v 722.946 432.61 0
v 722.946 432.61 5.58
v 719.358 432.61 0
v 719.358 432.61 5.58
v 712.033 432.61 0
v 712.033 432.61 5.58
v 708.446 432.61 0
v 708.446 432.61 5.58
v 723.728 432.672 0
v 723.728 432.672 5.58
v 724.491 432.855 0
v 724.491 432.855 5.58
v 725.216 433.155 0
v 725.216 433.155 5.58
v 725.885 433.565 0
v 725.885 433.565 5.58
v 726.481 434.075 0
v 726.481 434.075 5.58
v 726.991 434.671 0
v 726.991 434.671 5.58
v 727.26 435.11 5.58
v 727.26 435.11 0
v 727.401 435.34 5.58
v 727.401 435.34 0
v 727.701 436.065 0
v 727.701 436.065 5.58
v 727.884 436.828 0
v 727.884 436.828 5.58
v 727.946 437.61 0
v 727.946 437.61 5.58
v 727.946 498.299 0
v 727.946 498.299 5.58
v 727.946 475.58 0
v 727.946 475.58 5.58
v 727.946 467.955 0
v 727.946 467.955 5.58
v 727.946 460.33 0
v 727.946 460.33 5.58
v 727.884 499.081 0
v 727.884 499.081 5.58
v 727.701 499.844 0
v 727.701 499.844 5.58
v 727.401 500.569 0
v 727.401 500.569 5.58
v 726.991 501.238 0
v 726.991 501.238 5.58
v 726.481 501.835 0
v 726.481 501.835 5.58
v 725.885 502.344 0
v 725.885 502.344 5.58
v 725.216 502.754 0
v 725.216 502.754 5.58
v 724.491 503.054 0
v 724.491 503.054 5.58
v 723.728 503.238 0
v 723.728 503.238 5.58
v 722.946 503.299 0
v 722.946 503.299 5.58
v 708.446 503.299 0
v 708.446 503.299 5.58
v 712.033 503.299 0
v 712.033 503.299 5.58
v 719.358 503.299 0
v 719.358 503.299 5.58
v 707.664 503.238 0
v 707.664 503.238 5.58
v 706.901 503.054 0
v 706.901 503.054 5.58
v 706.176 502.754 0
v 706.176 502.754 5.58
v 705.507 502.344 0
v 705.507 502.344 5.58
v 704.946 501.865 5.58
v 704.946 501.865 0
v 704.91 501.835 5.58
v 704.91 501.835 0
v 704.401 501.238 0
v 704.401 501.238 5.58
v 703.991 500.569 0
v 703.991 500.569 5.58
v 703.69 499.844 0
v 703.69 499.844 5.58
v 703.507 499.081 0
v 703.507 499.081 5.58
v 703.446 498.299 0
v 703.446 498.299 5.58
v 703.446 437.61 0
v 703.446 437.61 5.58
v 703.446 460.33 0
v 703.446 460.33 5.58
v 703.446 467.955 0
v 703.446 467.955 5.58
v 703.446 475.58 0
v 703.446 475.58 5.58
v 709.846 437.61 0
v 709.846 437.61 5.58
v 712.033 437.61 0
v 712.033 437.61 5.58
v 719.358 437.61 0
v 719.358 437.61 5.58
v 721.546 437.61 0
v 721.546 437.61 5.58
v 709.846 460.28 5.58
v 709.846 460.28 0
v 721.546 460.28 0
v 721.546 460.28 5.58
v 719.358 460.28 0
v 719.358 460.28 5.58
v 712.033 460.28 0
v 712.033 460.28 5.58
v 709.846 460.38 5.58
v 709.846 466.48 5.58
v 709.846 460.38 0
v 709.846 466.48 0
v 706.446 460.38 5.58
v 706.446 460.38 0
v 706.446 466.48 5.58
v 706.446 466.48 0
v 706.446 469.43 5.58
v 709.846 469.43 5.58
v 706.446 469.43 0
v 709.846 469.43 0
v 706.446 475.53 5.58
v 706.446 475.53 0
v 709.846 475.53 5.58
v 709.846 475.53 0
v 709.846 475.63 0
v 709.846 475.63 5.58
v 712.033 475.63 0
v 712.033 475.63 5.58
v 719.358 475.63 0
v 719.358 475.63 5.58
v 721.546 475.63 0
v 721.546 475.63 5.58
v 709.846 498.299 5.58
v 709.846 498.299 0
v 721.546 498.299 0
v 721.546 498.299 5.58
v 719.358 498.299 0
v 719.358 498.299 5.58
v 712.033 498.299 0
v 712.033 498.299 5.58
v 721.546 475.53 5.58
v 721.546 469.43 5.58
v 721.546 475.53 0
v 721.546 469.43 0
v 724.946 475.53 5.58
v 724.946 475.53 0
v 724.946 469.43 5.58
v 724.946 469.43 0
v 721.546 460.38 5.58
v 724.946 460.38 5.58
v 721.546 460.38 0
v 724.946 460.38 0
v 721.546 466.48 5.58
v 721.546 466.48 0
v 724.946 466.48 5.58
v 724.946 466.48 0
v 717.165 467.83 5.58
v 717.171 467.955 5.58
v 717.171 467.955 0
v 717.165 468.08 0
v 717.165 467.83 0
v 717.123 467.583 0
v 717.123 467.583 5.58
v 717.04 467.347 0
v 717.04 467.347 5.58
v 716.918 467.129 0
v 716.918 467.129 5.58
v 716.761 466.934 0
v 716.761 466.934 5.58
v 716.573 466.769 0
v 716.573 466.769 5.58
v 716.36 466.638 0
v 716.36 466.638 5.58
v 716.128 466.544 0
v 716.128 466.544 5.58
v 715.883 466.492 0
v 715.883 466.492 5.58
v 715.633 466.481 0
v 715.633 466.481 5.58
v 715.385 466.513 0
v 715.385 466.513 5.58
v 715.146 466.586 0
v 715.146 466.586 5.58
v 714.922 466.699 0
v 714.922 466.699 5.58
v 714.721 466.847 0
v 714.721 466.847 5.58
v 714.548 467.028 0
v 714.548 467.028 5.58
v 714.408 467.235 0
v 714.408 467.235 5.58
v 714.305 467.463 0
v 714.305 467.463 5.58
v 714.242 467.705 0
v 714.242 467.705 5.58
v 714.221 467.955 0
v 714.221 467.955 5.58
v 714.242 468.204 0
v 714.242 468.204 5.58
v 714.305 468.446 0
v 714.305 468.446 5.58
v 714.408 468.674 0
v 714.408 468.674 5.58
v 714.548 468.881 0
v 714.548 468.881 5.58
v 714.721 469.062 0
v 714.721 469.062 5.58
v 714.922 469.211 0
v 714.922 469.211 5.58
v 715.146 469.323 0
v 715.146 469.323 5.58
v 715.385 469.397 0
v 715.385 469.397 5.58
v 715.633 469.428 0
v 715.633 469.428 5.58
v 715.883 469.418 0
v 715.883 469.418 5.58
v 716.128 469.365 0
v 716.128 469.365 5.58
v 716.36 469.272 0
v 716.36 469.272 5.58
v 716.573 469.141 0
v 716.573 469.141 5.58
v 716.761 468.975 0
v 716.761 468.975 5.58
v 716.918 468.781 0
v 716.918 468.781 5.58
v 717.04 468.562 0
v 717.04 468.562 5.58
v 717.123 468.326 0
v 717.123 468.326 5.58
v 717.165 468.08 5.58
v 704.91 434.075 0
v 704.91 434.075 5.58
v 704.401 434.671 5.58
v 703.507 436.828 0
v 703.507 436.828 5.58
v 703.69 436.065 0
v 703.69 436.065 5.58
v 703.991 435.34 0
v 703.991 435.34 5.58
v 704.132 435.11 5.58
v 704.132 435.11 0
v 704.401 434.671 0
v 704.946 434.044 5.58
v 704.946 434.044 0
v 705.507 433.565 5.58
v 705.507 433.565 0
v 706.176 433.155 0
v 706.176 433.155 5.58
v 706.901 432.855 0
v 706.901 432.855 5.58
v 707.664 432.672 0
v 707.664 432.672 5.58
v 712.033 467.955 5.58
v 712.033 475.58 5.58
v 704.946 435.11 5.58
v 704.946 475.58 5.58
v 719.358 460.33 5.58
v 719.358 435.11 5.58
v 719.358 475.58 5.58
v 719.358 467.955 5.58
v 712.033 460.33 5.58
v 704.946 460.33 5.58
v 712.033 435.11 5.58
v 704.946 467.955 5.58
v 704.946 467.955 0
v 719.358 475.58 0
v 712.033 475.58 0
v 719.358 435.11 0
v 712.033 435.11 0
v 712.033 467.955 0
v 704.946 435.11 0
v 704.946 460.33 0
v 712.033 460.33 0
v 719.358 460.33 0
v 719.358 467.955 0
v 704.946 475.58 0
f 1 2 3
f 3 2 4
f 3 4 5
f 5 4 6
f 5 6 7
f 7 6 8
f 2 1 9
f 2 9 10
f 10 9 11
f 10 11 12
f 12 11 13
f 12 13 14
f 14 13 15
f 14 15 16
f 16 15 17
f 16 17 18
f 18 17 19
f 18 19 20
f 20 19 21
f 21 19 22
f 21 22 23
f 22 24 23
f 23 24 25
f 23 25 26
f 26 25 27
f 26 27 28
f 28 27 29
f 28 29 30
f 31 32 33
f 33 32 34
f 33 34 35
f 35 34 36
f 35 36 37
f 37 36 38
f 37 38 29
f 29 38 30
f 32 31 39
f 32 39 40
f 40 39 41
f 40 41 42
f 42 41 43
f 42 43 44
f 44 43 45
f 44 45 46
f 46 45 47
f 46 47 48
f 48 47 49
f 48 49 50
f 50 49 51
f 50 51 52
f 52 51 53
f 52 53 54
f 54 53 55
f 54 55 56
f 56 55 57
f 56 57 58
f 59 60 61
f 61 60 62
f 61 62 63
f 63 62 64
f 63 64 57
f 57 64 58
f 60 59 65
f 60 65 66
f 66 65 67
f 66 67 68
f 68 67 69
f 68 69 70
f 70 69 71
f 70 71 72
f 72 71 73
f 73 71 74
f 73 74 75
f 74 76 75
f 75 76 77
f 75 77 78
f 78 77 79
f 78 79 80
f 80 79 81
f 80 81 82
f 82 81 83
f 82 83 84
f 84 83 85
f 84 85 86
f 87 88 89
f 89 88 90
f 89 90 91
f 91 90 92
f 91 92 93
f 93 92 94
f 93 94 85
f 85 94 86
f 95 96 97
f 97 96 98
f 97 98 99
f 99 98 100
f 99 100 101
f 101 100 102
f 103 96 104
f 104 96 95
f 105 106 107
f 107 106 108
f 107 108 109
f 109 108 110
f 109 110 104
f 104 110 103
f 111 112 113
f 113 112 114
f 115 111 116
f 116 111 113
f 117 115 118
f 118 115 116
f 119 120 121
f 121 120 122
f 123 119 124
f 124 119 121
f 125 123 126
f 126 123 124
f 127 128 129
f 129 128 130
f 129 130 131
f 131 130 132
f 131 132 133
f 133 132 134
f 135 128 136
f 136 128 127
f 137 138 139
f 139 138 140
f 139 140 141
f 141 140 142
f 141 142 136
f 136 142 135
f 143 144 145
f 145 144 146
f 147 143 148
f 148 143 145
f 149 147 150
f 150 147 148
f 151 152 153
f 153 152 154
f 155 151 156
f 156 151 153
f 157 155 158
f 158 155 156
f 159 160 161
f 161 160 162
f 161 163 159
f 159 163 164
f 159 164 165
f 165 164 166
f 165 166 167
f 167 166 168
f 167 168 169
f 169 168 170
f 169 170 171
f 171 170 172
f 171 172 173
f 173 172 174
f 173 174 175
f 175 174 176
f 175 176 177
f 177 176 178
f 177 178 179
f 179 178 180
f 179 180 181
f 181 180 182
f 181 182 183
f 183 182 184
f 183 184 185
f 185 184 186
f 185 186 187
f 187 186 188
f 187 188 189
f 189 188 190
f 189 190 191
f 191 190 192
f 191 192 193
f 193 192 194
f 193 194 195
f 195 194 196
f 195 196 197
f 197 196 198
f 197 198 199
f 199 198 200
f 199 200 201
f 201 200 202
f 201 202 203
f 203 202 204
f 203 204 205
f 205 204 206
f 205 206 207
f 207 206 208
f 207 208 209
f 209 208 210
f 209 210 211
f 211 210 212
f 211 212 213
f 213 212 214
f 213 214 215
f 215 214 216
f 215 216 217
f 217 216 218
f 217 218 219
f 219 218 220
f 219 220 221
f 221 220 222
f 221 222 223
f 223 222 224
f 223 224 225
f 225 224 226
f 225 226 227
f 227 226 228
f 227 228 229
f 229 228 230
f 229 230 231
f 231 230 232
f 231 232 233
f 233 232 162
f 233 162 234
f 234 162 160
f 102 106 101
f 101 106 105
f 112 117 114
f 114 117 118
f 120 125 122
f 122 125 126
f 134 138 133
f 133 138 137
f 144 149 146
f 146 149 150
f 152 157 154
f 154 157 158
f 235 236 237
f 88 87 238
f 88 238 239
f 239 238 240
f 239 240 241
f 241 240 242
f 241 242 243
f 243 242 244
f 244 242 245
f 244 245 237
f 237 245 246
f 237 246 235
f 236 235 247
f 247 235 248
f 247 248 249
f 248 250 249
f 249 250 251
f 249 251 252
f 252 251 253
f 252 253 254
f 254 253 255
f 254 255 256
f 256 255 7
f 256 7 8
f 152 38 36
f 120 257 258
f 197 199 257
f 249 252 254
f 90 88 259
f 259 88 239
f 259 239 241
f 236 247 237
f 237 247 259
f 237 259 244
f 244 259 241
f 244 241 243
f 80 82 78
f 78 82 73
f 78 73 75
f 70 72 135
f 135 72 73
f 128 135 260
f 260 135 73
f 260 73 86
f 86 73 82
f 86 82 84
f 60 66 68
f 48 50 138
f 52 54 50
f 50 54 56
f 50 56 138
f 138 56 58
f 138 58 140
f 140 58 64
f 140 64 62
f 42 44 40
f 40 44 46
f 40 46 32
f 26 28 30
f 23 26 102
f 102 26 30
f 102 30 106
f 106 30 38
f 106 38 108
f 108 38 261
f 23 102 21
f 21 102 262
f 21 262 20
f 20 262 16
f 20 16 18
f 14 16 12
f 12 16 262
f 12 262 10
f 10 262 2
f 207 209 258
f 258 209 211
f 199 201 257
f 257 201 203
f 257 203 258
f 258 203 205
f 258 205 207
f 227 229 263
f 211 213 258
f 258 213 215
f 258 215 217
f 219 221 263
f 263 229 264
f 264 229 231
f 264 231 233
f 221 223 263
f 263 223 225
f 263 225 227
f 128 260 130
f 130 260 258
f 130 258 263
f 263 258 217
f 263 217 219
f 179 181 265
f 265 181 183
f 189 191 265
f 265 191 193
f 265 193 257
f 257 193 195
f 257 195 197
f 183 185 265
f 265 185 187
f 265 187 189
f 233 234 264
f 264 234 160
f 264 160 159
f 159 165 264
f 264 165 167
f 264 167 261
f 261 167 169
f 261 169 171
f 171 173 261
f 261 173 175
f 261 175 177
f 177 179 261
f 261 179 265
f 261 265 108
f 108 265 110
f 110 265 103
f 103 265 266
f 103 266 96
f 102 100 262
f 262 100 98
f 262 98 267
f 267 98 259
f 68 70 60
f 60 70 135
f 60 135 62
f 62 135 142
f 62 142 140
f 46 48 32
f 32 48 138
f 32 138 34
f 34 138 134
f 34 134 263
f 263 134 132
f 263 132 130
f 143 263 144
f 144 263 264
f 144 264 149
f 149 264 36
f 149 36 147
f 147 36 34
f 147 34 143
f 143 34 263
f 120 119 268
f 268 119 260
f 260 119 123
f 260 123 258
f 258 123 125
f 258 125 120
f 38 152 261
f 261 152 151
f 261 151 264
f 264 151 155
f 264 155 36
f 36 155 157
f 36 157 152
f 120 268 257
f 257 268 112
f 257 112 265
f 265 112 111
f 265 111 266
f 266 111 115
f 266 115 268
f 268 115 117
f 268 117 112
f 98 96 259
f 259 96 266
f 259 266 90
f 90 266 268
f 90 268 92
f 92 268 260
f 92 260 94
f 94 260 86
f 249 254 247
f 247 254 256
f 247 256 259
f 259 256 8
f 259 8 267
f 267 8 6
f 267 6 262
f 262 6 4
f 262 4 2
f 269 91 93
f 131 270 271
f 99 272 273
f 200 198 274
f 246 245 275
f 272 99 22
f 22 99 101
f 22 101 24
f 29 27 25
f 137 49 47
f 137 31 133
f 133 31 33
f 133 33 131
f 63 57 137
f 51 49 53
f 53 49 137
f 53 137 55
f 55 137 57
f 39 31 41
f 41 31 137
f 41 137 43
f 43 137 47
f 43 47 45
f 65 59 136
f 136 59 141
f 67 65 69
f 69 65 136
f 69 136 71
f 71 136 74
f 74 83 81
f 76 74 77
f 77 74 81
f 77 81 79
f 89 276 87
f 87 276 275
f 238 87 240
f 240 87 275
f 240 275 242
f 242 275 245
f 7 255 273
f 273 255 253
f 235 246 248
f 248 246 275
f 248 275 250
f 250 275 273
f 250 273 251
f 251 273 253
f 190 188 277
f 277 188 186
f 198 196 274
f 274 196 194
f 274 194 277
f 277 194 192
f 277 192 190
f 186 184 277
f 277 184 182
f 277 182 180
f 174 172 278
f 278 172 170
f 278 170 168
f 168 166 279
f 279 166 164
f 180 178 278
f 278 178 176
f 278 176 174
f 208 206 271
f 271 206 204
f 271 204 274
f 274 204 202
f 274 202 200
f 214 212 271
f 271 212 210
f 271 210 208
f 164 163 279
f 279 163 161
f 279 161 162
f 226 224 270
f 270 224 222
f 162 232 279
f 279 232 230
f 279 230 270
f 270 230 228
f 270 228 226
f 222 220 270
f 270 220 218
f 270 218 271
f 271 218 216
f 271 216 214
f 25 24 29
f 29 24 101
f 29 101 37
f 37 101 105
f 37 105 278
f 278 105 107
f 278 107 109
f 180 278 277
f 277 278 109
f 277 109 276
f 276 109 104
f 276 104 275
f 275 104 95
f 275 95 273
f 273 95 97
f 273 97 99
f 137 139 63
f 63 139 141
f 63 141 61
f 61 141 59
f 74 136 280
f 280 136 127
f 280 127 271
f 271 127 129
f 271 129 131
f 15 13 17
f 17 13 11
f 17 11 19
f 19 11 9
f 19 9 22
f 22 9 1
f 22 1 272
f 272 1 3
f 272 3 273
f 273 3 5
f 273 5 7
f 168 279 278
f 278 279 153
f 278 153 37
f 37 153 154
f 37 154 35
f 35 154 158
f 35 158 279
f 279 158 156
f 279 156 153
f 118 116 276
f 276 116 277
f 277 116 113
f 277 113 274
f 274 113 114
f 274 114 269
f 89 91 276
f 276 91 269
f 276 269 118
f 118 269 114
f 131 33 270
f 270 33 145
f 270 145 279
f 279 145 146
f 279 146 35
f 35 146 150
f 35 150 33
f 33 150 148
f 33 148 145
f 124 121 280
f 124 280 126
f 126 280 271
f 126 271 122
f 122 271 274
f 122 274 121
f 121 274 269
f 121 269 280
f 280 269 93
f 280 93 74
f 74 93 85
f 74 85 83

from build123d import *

# Parameters (mm, degrees)
SKETCH1_W           = 11.7
SKETCH1_H           = 22.669491249
SKETCH1_W_2         = 3.4
SKETCH1_H_2         = 6.1
SKETCH1_R           = 1.475
SKETCH1_H_3         = 22.669491248
BOSS_EXTRUDE1_DEPTH = 5.58


with BuildPart() as part:
    # Sketch1 → Boss-Extrude1 (new body)
    with BuildSketch(Plane.XY):
        with BuildLine():
            Line((708.445729089, 432.610180658), (715.695729089, 432.610180658))
            Line((715.695729089, 432.610180658), (722.945729089, 432.610180658))
            ThreePointArc((722.945729089, 432.610180658), (726.481262995, 434.074646752), (727.945729089, 437.610180658))
            Line((727.945729089, 437.610180658), (727.945729089, 498.299163155))
            ThreePointArc((727.945729089, 498.299163155), (726.481262995, 501.834697061), (722.945729089, 503.299163155))
            Line((722.945729089, 503.299163155), (715.695729089, 503.299163155))
            Line((715.695729089, 503.299163155), (708.445729089, 503.299163155))
            ThreePointArc((708.445729089, 503.299163155), (704.910195183, 501.834697061), (703.445729089, 498.299163155))
            Line((703.445729089, 498.299163155), (703.445729089, 437.610180658))
            ThreePointArc((703.445729089, 437.610180658), (704.910195183, 434.074646752), (708.445729089, 432.610180658))
        make_face()
        with Locations((715.695729089, 448.944926283)):
            Rectangle(SKETCH1_W, SKETCH1_H, mode=Mode.SUBTRACT)
        with Locations((708.145729089, 463.429671907)):
            Rectangle(SKETCH1_W_2, SKETCH1_H_2, mode=Mode.SUBTRACT)
        with Locations((715.695729089, 467.954671907)):
            Circle(SKETCH1_R, mode=Mode.SUBTRACT)
        with Locations((723.245729089, 463.429671907)):
            Rectangle(SKETCH1_W_2, SKETCH1_H_2, mode=Mode.SUBTRACT)
        with Locations((708.145729089, 472.479671907)):
            Rectangle(SKETCH1_W_2, SKETCH1_H_2, mode=Mode.SUBTRACT)
        with Locations((715.695729089, 486.964417531)):
            Rectangle(SKETCH1_W, SKETCH1_H_3, mode=Mode.SUBTRACT)
        with Locations((723.245729089, 472.479671907)):
            Rectangle(SKETCH1_W_2, SKETCH1_H_2, mode=Mode.SUBTRACT)
    extrude(amount=BOSS_EXTRUDE1_DEPTH)


solid = part.part
